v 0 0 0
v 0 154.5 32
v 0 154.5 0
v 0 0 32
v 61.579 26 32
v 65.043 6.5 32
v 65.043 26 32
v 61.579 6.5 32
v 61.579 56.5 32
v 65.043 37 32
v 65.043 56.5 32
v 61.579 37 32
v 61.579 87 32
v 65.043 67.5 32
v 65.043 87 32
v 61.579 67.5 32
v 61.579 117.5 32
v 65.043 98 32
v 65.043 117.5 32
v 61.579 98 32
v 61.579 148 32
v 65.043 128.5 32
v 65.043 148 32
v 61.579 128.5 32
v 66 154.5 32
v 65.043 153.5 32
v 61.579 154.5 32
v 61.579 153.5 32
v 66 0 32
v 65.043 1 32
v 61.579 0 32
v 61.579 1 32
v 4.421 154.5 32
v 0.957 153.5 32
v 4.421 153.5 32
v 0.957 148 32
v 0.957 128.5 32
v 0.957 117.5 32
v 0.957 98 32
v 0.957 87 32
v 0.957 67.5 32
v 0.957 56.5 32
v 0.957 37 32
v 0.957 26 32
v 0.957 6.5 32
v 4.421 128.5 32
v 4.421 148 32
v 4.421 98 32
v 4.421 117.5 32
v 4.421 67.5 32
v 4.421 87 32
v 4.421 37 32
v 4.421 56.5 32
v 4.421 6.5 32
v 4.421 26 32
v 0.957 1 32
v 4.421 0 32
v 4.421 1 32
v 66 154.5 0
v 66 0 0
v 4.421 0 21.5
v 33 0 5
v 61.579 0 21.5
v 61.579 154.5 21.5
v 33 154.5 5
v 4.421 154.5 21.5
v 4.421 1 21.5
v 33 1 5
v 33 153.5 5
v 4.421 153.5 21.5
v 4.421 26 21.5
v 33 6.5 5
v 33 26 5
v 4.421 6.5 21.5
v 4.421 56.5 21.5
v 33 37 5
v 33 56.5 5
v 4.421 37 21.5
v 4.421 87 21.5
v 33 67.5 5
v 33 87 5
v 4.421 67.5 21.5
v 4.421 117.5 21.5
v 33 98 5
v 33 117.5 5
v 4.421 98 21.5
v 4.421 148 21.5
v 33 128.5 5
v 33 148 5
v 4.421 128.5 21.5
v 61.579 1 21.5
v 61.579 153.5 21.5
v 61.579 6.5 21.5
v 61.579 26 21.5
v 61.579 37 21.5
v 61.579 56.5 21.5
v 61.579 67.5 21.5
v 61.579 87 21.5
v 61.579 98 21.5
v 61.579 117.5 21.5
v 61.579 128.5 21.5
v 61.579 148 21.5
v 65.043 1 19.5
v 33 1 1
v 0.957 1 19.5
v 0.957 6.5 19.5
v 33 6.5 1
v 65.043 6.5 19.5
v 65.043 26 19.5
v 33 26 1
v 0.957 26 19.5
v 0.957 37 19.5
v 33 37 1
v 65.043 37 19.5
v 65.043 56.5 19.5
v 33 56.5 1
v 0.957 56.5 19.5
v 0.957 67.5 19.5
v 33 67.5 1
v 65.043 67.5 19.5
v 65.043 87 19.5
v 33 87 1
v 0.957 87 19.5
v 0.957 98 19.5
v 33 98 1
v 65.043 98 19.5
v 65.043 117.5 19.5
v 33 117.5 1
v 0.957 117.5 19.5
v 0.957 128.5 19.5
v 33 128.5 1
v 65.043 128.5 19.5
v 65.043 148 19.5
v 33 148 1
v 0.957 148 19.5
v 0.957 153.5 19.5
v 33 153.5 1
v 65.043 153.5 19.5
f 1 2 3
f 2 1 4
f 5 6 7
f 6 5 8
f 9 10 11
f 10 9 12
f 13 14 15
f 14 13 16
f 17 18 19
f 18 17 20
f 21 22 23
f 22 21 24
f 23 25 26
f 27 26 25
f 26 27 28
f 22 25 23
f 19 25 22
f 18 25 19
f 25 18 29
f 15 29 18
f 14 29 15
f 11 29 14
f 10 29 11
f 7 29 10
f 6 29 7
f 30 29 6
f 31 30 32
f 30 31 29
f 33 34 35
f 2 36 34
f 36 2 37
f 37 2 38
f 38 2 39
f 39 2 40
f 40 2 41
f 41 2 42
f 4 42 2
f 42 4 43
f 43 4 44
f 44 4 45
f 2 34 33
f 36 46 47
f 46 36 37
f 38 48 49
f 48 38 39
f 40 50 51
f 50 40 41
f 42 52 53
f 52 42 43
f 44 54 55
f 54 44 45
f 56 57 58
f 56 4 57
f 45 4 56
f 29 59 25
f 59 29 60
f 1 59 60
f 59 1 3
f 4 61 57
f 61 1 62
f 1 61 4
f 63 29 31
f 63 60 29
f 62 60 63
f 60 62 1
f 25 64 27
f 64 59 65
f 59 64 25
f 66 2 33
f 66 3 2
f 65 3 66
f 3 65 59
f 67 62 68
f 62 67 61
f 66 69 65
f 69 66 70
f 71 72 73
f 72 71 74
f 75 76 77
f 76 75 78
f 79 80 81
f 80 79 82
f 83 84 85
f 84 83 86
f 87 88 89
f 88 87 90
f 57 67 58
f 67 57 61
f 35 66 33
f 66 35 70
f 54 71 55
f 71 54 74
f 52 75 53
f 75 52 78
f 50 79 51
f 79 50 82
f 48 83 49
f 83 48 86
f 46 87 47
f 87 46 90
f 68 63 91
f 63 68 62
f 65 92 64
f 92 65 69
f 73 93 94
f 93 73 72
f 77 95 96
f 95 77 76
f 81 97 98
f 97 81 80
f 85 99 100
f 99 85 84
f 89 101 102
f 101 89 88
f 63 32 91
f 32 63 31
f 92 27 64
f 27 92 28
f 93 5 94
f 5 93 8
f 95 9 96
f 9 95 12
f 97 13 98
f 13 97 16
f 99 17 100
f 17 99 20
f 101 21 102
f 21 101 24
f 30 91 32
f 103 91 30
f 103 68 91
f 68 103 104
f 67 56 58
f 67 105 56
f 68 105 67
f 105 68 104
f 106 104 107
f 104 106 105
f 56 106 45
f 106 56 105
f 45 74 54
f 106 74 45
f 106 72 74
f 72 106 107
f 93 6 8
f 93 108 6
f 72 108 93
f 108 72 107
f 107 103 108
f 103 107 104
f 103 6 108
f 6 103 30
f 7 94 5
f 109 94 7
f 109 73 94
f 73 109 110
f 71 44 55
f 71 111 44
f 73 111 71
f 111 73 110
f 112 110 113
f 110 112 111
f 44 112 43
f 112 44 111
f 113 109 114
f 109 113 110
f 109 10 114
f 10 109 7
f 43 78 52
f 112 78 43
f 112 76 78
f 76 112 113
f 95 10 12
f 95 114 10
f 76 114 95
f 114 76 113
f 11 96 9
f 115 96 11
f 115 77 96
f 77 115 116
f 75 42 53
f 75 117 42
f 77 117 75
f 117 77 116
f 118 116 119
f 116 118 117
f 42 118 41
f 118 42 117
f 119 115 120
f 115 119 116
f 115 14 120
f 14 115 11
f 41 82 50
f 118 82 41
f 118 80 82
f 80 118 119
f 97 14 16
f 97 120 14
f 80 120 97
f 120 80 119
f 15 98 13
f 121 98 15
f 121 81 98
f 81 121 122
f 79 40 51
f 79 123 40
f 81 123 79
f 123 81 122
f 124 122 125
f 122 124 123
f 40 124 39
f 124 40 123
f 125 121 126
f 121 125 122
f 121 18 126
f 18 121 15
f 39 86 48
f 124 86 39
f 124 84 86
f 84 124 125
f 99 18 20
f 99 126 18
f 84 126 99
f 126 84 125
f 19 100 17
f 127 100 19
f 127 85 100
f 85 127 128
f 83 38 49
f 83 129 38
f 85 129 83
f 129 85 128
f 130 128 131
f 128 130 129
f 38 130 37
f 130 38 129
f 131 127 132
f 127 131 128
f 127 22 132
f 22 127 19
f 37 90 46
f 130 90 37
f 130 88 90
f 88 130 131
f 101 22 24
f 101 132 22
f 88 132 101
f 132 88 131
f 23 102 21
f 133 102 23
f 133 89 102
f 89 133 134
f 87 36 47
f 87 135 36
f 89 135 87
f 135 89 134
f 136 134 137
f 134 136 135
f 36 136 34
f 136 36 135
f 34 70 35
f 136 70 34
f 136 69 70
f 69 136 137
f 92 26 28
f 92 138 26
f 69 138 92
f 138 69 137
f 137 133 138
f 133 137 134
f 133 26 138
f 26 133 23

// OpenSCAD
$fn=200;
THICK = 1;

TILE_L = 25;
TILE_COUNT = 6;

BOX_W = 64;
BOX_L = 152.5; //83
BOX_H = 32;

difference() {
    cube(size = [
        BOX_W + (THICK * 2),
        BOX_L + (THICK * 2), 
        BOX_H]);

    translate([33, -5, 38])
        rotate([0, 90, 90]) 
            cylinder(h = 200, r = 33, $fn=6);


    tile_slot(1);
    tile_slot(1 + TILE_L);

    tile_slot(6.5 + TILE_L);
    tile_slot(6.5 + (TILE_L * 2));

    tile_slot(12 + (TILE_L * 2));
    tile_slot(12 + (TILE_L * 3));

    tile_slot(17.5 + (TILE_L * 3));
    tile_slot(17.5 + (TILE_L * 4));

    tile_slot(23 + (TILE_L * 4));
    tile_slot(23 + (TILE_L * 5));
}

module tile_slot(y) {
    translate([33, y, 38])
        rotate([0, 90, 90]) 
            cylinder(h = 5.5, r = 37, $fn=6);
}
